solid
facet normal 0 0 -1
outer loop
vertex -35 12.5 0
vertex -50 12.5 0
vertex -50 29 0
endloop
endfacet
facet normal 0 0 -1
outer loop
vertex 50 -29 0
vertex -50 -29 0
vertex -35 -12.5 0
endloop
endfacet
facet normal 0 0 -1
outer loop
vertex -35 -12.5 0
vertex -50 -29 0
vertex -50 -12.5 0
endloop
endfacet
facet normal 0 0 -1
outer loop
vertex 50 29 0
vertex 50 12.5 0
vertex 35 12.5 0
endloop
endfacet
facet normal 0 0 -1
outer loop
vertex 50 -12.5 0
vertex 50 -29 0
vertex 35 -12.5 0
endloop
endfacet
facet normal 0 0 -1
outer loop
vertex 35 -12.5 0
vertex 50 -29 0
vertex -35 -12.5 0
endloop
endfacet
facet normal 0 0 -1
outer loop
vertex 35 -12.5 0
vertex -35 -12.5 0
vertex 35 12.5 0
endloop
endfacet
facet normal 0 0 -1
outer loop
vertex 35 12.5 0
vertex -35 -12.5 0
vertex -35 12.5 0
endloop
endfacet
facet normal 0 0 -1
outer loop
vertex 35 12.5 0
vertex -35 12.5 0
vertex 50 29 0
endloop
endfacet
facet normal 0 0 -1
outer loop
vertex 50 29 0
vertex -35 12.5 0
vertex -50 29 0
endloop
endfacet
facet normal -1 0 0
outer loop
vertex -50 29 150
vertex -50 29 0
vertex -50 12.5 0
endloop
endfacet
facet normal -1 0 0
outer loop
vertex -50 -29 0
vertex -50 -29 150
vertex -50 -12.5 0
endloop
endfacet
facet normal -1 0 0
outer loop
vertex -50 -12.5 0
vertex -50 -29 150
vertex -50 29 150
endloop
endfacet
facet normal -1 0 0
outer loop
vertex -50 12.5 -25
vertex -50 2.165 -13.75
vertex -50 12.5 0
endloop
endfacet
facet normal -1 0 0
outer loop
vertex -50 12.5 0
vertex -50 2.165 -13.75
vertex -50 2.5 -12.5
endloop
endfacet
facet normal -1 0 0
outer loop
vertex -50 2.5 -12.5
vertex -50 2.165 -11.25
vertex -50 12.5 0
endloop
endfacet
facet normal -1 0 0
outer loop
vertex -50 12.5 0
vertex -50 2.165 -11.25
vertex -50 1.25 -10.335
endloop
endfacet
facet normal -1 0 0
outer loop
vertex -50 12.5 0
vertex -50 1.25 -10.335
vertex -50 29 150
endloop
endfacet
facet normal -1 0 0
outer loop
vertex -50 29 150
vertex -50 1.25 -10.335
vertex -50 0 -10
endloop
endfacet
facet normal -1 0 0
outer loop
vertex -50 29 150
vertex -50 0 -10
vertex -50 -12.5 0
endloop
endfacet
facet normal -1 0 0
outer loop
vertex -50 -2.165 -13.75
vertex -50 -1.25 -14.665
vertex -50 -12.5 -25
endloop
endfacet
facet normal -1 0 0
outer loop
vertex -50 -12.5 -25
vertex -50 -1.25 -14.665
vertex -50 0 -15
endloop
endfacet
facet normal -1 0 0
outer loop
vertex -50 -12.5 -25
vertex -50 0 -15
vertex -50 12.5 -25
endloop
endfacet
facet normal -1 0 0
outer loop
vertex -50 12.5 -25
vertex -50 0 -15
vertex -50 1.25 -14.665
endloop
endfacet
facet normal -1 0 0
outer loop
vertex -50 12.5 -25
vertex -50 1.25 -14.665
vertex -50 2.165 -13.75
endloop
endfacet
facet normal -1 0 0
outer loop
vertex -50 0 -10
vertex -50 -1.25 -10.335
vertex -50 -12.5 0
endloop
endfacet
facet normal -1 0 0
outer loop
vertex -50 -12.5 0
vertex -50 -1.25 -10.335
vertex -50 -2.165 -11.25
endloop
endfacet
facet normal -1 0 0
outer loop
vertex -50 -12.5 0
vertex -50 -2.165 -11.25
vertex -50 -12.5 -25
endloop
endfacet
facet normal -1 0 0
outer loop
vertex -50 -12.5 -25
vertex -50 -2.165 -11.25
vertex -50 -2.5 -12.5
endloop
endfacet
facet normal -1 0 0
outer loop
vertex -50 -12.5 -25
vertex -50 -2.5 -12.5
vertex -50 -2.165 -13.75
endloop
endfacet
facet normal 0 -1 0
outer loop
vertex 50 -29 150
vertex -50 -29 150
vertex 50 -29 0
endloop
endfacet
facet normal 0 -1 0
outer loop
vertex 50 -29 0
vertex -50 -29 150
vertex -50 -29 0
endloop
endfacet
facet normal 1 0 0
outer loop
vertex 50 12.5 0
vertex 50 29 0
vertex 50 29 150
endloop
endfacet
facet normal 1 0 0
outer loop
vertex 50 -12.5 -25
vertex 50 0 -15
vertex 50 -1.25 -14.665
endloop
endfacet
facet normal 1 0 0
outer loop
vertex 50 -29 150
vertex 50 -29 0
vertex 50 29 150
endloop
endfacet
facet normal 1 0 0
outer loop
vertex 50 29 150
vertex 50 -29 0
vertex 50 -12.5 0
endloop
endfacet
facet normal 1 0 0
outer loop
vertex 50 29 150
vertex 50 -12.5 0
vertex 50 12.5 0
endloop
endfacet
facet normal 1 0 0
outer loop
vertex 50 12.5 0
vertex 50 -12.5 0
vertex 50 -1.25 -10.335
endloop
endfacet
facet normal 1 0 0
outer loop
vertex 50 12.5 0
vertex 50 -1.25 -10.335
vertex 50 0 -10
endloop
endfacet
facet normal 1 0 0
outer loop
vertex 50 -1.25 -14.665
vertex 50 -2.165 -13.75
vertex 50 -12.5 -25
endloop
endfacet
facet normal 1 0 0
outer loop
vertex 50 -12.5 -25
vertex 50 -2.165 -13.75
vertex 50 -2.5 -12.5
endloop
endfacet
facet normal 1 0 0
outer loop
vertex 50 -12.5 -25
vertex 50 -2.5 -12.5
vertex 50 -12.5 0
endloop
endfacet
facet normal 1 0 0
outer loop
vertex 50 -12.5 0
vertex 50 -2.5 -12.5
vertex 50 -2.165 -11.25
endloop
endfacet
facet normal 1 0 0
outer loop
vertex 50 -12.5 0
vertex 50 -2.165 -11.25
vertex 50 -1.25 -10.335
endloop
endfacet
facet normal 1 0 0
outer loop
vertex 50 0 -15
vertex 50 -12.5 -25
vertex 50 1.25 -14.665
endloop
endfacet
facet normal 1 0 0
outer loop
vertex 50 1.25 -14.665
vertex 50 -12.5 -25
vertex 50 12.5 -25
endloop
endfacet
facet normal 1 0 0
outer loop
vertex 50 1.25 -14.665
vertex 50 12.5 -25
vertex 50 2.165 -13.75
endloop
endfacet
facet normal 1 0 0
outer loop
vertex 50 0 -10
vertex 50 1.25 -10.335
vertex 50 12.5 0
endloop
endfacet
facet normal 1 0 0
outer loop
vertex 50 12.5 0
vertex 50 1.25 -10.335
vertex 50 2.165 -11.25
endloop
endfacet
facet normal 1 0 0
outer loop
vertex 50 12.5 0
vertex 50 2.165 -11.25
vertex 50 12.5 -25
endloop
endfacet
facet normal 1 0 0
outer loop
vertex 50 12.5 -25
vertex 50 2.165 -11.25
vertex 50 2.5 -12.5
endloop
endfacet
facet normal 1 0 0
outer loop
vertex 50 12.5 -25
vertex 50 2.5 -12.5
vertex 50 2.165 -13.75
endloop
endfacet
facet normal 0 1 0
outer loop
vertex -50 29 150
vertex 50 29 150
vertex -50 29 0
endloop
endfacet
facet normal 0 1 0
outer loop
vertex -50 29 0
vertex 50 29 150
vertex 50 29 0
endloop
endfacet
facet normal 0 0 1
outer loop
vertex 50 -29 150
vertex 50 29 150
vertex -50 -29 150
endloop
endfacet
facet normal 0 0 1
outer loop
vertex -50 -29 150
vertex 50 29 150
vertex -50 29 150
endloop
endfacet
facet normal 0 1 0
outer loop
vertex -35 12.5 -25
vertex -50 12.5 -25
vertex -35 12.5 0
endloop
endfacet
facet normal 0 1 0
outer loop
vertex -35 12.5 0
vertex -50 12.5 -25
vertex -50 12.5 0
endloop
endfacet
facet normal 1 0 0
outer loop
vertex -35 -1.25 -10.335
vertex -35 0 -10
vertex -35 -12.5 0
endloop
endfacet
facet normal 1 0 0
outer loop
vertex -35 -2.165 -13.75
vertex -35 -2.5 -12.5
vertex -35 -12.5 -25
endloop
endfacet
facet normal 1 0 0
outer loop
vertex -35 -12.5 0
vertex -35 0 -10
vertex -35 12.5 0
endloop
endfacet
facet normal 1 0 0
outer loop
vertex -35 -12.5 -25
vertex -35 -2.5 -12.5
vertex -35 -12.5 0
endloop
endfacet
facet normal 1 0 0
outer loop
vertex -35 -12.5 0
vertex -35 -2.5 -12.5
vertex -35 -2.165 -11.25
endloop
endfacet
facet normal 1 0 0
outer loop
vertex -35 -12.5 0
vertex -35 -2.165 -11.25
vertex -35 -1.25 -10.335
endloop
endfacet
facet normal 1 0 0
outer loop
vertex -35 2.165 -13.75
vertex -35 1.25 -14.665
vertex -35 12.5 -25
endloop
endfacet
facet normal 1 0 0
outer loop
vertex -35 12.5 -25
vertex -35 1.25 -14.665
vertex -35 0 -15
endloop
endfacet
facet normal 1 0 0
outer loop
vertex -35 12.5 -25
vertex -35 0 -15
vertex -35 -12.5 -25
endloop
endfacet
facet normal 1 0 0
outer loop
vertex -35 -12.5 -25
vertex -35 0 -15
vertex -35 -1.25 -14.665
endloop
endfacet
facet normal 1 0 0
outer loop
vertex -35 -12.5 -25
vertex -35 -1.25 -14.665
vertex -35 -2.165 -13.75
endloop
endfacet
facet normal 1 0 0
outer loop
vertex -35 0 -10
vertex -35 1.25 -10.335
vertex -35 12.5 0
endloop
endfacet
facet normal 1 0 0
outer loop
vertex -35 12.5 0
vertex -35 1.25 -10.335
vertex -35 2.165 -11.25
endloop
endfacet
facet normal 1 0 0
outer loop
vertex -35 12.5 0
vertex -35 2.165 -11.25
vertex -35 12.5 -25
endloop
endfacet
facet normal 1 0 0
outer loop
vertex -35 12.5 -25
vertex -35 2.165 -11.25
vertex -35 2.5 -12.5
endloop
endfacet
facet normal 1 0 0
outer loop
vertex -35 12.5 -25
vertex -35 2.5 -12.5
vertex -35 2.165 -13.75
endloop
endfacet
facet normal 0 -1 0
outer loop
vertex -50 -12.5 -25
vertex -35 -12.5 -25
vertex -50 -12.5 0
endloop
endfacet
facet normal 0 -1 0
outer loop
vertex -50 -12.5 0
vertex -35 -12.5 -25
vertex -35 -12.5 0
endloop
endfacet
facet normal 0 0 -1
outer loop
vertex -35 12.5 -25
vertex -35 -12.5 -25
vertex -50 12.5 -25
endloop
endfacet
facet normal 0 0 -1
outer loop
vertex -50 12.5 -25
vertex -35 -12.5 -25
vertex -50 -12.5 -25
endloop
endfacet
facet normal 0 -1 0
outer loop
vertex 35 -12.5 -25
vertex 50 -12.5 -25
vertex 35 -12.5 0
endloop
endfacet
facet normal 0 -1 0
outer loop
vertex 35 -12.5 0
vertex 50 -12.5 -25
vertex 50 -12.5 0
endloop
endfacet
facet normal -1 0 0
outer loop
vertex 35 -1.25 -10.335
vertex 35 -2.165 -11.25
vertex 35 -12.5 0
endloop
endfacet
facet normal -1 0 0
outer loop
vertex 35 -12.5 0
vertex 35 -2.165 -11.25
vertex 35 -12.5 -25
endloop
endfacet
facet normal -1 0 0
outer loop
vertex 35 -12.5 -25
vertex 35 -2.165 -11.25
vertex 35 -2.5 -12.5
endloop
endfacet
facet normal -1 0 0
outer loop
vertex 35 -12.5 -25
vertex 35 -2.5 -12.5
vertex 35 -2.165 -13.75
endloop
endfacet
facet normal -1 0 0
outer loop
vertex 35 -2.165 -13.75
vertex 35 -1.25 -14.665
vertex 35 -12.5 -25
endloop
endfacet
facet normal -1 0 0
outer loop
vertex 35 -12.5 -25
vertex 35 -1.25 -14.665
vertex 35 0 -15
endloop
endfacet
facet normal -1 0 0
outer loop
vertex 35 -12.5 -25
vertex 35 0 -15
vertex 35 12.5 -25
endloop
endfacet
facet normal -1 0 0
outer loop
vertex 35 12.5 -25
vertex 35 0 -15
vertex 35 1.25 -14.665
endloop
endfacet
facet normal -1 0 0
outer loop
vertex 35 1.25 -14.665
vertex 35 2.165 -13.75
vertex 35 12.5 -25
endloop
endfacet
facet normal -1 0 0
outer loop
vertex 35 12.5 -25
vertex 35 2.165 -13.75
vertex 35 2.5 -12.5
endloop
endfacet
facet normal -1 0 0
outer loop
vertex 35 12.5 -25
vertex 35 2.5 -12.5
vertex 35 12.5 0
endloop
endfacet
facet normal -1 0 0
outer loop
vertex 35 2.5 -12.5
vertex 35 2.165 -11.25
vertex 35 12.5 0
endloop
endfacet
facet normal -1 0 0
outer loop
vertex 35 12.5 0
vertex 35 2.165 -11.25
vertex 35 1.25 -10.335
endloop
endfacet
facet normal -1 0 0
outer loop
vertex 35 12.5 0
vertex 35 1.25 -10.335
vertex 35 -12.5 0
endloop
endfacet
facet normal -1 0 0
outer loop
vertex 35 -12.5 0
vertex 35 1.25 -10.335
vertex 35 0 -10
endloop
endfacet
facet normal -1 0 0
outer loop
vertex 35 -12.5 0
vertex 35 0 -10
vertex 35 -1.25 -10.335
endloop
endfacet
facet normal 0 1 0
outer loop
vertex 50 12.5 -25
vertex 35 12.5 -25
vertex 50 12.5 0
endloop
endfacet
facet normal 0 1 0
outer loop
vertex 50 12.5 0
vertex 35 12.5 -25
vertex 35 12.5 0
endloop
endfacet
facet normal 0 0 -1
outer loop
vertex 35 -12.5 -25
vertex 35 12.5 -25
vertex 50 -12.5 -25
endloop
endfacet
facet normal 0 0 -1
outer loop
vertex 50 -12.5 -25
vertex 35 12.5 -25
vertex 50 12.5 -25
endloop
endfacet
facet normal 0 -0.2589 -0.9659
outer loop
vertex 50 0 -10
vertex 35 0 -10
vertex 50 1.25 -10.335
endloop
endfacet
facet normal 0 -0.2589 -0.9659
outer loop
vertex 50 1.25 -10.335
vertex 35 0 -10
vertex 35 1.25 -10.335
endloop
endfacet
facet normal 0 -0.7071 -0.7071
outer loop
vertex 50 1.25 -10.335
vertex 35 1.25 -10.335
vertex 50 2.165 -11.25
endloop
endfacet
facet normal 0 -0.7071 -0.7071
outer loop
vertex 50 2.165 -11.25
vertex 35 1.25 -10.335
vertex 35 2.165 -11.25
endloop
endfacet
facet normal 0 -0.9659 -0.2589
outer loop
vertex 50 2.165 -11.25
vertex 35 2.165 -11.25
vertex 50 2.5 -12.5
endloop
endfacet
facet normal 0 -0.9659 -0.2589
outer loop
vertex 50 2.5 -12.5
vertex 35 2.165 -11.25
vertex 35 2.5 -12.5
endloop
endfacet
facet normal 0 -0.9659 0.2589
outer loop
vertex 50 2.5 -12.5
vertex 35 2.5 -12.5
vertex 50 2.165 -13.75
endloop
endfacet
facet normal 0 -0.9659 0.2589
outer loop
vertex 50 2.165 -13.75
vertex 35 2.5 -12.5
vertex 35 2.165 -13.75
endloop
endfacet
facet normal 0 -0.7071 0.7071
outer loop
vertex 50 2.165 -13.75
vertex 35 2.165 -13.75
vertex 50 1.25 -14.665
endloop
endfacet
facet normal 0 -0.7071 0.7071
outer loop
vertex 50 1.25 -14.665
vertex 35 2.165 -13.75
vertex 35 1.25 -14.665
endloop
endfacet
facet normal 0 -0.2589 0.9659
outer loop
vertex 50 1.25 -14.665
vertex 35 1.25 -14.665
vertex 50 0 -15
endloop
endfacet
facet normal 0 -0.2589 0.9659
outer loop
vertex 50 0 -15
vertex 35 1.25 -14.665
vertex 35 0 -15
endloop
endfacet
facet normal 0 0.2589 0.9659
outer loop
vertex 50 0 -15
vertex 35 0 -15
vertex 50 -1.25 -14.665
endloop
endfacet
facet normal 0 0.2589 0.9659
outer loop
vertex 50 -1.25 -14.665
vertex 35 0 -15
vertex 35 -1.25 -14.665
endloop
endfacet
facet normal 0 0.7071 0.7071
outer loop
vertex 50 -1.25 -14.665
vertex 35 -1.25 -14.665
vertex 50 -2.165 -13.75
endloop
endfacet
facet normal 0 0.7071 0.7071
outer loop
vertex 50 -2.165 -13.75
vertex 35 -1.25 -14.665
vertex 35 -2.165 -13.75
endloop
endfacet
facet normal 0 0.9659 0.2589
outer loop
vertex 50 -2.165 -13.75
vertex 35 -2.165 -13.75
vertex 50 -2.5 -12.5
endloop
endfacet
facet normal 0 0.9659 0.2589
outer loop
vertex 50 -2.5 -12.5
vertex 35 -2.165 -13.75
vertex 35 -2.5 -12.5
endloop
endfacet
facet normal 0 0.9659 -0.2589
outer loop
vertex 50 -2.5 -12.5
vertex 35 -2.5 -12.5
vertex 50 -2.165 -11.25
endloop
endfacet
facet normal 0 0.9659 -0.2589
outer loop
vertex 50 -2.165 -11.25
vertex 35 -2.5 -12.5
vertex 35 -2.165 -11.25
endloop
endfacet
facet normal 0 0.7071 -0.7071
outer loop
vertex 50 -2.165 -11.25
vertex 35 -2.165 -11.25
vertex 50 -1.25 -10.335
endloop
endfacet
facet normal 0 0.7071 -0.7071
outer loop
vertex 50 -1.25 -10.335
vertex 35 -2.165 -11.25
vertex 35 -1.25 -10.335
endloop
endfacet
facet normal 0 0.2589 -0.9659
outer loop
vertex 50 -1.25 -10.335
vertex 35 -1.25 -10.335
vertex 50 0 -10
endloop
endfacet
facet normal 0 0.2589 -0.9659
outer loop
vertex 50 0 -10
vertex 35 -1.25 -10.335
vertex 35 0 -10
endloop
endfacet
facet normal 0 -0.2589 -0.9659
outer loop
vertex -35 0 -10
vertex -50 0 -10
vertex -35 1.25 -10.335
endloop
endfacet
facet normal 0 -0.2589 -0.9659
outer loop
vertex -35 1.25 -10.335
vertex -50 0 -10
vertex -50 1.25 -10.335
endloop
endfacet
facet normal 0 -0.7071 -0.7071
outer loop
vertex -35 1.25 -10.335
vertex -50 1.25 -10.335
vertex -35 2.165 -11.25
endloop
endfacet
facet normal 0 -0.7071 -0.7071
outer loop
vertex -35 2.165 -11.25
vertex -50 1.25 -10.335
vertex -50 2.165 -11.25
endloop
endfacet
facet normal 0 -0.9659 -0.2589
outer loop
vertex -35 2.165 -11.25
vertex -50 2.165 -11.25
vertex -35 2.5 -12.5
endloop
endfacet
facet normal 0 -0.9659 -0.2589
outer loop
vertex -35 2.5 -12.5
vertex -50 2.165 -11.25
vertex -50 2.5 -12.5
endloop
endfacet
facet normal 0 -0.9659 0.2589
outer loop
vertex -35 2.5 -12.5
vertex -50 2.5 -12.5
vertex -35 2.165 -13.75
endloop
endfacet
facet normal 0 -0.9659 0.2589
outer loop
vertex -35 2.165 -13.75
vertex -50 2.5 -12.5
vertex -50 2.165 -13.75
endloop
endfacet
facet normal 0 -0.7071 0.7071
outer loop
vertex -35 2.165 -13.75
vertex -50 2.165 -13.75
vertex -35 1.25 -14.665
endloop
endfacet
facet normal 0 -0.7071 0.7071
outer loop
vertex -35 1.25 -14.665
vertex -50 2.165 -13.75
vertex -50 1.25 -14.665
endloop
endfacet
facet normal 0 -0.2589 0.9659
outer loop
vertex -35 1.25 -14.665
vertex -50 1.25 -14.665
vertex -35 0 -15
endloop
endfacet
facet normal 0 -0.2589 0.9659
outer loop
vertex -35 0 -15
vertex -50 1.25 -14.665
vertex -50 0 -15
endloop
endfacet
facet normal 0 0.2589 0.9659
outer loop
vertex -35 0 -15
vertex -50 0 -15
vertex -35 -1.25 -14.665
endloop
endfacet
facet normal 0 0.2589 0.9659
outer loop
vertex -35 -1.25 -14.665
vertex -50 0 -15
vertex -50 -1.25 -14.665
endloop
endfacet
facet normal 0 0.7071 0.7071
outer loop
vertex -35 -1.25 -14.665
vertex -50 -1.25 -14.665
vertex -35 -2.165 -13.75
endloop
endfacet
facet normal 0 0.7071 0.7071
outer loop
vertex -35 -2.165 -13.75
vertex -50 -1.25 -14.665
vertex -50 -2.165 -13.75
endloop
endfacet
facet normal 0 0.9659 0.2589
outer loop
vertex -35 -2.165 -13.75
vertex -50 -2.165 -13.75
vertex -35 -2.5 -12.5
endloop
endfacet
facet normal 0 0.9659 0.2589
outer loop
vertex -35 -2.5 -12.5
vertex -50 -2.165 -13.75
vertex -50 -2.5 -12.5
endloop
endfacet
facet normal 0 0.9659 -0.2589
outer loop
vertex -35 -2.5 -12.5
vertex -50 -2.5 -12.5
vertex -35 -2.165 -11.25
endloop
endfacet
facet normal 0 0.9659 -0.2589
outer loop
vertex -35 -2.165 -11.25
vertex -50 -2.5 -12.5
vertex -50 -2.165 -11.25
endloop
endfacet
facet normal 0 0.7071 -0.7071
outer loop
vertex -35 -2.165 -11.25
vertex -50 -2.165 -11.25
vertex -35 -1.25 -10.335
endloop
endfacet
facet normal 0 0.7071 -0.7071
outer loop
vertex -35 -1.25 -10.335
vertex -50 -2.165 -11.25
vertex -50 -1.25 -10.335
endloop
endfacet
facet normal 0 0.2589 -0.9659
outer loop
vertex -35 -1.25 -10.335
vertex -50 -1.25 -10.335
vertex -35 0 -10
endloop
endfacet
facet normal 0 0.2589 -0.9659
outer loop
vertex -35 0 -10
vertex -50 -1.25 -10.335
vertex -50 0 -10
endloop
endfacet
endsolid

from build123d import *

# Parameters (mm, degrees)
SKETCH2_W           = 100
SKETCH2_H           = 58
BOSS_EXTRUDE1_DEPTH = 150
SKETCH3_W           = 15
SKETCH3_H           = 25
BOSS_EXTRUDE2_DEPTH = 25
CUT_EXTRUDE1_REACH  = 184.595
SKETCH4_R           = 2.5


with BuildPart() as part:
    # Sketch2 → Boss-Extrude1 (new body)
    with BuildSketch(Plane.XY):
        Rectangle(SKETCH2_W, SKETCH2_H)
    extrude(amount=BOSS_EXTRUDE1_DEPTH)

    # Sketch3 → Boss-Extrude2 (add)
    with BuildSketch(Plane(origin=(0, 0, 0), x_dir=(-1, 0, 0), z_dir=(0, 0, -1))):
        with Locations((42.5, 0)):
            Rectangle(SKETCH3_W, SKETCH3_H)
        with Locations((-42.5, 0)):
            Rectangle(SKETCH3_W, SKETCH3_H)
    extrude(amount=BOSS_EXTRUDE2_DEPTH)

    # Cut-Extrude1: up to this face of the body (flat: up to its plane)
    cut_extrude1_end = Plane(part.part.faces().sort_by_distance((50, 0, 69.13538874))[0])
    # Sketch4 → Cut-Extrude1 (cut, up to the picked face)
    with BuildSketch(Plane.ZY.offset(50), mode=Mode.PRIVATE) as cut_extrude1_sk1:
        with Locations((-12.5, 0)):
            Circle(SKETCH4_R)
    cut_extrude1_tool1 = split(extrude(cut_extrude1_sk1.sketch, amount=-CUT_EXTRUDE1_REACH, mode=Mode.PRIVATE), bisect_by=cut_extrude1_end, keep=Keep.BOTH, mode=Mode.PRIVATE)
    add(cut_extrude1_tool1.solids().sort_by(Axis((-50, 0, -12.5), (1, 0, 0)))[0], mode=Mode.SUBTRACT)


solid = part.part
